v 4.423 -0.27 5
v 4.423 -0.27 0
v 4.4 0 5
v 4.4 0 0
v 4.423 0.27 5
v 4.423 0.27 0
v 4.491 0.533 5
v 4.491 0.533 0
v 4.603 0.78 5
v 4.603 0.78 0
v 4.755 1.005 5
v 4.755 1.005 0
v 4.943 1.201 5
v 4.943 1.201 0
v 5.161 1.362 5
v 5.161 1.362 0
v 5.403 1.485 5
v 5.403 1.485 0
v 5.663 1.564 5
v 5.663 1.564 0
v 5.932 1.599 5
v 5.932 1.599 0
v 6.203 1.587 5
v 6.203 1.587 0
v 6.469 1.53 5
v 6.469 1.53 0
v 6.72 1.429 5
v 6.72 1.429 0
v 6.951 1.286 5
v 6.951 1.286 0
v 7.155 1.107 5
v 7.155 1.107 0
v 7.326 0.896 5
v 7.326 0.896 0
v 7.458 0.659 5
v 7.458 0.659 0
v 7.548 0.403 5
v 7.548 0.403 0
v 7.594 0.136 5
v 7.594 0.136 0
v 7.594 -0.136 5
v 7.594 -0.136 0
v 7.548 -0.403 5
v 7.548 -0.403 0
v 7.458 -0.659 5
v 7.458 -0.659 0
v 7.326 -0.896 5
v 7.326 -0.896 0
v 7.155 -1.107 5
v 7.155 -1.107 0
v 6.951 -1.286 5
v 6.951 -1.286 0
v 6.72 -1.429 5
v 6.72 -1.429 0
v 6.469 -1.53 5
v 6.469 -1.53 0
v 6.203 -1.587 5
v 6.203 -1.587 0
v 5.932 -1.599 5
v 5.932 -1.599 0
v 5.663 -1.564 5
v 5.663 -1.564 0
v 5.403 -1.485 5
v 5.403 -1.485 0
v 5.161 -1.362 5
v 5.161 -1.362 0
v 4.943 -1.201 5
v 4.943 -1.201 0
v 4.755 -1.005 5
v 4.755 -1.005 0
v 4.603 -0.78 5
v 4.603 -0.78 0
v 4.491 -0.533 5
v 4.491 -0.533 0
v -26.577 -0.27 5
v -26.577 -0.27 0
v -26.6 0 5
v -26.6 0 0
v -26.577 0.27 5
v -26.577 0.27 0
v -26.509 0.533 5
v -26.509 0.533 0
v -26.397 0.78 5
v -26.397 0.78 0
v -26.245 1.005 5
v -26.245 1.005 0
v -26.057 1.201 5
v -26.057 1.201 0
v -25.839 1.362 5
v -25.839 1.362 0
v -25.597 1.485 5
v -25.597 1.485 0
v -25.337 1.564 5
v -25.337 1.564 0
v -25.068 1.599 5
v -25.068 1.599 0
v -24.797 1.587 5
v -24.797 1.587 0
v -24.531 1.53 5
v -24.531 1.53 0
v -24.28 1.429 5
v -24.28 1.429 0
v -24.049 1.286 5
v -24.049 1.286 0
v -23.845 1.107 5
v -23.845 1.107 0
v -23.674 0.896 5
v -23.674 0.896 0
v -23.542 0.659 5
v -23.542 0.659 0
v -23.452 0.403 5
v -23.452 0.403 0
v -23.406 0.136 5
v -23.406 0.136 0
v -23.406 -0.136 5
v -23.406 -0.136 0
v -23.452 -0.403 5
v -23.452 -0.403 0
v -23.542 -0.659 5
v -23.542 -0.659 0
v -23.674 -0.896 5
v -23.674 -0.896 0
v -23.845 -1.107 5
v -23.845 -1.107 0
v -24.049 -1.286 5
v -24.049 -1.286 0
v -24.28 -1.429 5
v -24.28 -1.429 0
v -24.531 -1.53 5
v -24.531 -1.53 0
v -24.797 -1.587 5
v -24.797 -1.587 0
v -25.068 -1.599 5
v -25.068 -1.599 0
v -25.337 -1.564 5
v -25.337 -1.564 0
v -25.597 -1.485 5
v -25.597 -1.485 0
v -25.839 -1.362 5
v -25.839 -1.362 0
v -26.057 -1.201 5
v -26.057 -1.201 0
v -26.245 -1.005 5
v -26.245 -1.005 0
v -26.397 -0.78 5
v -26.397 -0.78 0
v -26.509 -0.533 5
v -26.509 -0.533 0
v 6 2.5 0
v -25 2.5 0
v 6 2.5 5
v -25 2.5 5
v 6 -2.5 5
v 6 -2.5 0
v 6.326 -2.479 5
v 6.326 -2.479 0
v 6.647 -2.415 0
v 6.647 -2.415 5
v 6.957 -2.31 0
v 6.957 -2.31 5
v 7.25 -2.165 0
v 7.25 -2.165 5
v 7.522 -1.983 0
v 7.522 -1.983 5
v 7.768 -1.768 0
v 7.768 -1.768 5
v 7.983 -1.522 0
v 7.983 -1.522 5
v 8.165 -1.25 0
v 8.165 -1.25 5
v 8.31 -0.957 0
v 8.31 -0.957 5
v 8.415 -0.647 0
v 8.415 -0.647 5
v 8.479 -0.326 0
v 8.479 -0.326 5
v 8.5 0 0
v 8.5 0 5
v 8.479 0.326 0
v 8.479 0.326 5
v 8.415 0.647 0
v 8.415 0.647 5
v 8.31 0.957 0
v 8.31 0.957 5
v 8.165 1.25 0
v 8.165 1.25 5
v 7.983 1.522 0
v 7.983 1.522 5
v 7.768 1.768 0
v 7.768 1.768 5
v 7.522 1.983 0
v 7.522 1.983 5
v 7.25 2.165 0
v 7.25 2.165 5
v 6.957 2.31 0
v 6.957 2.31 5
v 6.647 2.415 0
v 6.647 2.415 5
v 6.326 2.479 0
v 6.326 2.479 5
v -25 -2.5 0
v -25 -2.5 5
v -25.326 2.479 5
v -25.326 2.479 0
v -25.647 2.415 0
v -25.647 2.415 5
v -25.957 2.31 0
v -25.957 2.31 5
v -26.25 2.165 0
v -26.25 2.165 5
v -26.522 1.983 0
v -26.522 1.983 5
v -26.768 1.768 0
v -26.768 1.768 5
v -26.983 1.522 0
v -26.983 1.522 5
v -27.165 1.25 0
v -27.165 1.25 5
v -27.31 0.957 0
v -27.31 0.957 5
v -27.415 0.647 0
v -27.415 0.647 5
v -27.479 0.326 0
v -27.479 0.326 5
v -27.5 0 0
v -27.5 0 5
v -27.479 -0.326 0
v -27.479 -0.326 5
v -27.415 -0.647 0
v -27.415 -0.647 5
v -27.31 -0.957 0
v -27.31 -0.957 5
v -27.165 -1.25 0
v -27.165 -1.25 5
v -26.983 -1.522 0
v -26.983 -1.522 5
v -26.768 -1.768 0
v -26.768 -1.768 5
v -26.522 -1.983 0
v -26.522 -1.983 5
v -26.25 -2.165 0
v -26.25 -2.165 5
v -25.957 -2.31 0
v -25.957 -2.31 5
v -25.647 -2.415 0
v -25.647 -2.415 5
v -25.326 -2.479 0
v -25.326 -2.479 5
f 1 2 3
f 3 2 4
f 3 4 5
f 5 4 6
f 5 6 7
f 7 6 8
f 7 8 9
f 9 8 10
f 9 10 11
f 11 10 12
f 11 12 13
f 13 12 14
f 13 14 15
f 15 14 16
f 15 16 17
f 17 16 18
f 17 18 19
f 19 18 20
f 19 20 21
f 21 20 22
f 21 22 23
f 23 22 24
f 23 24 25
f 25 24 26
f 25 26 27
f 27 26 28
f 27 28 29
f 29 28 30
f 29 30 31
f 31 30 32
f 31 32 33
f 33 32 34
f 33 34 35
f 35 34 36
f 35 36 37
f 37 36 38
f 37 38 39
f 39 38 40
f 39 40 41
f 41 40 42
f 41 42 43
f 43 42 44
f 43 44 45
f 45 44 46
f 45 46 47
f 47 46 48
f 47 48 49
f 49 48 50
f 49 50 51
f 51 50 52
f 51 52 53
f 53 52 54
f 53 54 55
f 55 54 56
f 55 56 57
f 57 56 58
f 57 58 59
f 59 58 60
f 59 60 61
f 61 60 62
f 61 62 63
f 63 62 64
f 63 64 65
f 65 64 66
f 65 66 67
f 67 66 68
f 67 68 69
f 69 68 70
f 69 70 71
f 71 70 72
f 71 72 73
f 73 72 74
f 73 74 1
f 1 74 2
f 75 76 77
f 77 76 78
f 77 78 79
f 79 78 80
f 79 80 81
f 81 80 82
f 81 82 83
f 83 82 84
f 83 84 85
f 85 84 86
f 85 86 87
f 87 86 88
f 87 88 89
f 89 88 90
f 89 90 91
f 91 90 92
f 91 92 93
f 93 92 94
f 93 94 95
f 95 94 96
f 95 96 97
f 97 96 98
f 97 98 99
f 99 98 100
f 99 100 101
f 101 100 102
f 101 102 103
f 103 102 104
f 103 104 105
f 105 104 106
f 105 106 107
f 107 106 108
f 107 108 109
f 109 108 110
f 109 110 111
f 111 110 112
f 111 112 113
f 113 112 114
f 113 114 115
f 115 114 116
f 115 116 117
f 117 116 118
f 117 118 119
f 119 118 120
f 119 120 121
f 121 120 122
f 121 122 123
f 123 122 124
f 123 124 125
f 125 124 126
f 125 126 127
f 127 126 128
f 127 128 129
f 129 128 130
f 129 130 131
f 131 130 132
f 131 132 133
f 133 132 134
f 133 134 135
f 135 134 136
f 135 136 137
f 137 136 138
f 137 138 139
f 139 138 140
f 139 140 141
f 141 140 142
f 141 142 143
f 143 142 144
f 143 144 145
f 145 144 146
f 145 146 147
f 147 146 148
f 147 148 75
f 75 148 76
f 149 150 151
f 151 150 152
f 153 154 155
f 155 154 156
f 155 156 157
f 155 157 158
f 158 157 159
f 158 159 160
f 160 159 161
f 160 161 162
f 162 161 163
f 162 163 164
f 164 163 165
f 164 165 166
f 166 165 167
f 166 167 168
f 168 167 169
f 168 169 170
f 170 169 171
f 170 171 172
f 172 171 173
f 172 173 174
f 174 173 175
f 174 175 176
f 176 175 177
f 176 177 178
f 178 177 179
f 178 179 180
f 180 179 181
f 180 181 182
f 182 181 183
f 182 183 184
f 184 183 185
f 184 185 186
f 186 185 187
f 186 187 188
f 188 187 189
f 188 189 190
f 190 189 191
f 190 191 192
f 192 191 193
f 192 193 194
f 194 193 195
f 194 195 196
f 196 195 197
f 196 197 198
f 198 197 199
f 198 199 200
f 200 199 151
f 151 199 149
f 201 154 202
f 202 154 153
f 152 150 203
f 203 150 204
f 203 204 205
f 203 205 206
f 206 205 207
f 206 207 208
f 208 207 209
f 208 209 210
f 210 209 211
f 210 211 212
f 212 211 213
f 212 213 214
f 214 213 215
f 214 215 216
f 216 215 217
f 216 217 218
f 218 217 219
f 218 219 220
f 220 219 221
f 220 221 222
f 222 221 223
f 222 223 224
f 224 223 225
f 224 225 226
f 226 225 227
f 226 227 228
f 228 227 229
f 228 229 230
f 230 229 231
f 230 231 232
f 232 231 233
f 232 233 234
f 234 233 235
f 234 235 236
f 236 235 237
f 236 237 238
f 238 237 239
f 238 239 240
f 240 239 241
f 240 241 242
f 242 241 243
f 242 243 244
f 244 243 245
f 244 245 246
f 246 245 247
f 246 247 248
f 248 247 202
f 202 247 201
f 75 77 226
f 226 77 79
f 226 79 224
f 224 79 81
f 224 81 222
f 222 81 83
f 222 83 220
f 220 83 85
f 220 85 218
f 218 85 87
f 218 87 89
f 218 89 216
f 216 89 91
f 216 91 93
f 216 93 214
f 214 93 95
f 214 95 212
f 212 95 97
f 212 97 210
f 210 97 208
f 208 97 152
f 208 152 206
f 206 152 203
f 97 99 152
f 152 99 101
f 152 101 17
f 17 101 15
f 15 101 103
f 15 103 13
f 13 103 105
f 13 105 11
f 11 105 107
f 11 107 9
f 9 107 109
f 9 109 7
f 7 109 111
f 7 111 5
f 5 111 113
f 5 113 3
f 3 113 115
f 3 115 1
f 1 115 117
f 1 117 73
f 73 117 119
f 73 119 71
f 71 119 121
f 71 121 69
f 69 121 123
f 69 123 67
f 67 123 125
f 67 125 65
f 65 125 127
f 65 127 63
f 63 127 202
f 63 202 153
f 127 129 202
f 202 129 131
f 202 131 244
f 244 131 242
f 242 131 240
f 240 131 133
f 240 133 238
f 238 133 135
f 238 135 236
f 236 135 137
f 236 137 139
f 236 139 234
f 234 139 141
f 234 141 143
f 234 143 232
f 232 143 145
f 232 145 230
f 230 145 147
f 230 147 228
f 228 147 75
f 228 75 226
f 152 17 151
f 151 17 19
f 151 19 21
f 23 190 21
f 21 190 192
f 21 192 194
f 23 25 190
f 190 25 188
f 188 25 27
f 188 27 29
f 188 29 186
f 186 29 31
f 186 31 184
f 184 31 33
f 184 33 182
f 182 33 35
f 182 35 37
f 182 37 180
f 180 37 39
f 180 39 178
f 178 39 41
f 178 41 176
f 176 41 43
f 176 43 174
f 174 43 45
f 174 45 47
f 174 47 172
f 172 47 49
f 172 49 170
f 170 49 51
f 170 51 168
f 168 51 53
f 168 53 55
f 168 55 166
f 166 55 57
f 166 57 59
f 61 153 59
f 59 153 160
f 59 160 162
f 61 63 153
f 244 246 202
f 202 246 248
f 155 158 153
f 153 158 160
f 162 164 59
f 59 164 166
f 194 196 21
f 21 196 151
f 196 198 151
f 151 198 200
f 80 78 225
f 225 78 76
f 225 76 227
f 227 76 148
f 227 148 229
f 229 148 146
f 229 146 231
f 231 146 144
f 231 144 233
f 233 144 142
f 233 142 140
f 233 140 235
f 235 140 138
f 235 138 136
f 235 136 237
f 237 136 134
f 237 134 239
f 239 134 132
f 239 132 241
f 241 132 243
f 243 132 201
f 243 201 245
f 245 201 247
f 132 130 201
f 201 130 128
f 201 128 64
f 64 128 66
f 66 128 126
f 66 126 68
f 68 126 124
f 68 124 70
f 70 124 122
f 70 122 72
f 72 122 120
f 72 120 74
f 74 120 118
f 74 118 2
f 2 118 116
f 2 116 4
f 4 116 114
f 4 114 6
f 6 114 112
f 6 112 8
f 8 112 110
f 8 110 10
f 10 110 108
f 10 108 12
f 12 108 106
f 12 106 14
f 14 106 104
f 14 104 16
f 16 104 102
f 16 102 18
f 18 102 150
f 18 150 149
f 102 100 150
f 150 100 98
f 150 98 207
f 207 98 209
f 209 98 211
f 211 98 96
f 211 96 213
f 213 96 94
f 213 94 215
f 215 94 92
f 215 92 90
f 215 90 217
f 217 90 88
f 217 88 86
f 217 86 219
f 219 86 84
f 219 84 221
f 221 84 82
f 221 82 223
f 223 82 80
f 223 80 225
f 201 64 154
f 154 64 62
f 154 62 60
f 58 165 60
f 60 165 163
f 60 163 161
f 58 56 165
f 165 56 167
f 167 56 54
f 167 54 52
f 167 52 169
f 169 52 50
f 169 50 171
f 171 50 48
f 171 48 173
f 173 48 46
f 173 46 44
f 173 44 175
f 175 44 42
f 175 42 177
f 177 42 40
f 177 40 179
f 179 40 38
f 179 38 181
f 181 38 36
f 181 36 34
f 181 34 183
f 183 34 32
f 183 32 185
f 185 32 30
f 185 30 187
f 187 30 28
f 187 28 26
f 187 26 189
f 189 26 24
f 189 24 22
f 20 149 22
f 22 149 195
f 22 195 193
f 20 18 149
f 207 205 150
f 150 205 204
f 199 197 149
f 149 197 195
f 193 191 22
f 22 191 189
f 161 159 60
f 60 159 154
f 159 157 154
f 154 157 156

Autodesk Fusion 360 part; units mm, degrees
sketch "스케치1" plane through (0, 0, 0) normal (0, 0, 1) x (1, 0, 0)
  line L0 (-25, -2.5) -> (6, -2.5)
  arc A0 (6, -2.5) -> (6, 2.5) centre (6, 0) ccw
  line L1 (6, 2.5) -> (-25, 2.5)
  arc A1 (-25, 2.5) -> (-25, -2.5) centre (-25, 0) ccw
  line L2 (-25, 0) -> (6, 0) construction
  circle A2 centre (6, 0) radius 1.6
  circle A3 centre (-25, 0) radius 1.6
  dimension "d1" = 31
  dimension "d2" = 5
  dimension "d3" = 3.2
  dimension "d4" = 3.2
extrude "돌출1" add sketch "스케치1" along normal blind 5
